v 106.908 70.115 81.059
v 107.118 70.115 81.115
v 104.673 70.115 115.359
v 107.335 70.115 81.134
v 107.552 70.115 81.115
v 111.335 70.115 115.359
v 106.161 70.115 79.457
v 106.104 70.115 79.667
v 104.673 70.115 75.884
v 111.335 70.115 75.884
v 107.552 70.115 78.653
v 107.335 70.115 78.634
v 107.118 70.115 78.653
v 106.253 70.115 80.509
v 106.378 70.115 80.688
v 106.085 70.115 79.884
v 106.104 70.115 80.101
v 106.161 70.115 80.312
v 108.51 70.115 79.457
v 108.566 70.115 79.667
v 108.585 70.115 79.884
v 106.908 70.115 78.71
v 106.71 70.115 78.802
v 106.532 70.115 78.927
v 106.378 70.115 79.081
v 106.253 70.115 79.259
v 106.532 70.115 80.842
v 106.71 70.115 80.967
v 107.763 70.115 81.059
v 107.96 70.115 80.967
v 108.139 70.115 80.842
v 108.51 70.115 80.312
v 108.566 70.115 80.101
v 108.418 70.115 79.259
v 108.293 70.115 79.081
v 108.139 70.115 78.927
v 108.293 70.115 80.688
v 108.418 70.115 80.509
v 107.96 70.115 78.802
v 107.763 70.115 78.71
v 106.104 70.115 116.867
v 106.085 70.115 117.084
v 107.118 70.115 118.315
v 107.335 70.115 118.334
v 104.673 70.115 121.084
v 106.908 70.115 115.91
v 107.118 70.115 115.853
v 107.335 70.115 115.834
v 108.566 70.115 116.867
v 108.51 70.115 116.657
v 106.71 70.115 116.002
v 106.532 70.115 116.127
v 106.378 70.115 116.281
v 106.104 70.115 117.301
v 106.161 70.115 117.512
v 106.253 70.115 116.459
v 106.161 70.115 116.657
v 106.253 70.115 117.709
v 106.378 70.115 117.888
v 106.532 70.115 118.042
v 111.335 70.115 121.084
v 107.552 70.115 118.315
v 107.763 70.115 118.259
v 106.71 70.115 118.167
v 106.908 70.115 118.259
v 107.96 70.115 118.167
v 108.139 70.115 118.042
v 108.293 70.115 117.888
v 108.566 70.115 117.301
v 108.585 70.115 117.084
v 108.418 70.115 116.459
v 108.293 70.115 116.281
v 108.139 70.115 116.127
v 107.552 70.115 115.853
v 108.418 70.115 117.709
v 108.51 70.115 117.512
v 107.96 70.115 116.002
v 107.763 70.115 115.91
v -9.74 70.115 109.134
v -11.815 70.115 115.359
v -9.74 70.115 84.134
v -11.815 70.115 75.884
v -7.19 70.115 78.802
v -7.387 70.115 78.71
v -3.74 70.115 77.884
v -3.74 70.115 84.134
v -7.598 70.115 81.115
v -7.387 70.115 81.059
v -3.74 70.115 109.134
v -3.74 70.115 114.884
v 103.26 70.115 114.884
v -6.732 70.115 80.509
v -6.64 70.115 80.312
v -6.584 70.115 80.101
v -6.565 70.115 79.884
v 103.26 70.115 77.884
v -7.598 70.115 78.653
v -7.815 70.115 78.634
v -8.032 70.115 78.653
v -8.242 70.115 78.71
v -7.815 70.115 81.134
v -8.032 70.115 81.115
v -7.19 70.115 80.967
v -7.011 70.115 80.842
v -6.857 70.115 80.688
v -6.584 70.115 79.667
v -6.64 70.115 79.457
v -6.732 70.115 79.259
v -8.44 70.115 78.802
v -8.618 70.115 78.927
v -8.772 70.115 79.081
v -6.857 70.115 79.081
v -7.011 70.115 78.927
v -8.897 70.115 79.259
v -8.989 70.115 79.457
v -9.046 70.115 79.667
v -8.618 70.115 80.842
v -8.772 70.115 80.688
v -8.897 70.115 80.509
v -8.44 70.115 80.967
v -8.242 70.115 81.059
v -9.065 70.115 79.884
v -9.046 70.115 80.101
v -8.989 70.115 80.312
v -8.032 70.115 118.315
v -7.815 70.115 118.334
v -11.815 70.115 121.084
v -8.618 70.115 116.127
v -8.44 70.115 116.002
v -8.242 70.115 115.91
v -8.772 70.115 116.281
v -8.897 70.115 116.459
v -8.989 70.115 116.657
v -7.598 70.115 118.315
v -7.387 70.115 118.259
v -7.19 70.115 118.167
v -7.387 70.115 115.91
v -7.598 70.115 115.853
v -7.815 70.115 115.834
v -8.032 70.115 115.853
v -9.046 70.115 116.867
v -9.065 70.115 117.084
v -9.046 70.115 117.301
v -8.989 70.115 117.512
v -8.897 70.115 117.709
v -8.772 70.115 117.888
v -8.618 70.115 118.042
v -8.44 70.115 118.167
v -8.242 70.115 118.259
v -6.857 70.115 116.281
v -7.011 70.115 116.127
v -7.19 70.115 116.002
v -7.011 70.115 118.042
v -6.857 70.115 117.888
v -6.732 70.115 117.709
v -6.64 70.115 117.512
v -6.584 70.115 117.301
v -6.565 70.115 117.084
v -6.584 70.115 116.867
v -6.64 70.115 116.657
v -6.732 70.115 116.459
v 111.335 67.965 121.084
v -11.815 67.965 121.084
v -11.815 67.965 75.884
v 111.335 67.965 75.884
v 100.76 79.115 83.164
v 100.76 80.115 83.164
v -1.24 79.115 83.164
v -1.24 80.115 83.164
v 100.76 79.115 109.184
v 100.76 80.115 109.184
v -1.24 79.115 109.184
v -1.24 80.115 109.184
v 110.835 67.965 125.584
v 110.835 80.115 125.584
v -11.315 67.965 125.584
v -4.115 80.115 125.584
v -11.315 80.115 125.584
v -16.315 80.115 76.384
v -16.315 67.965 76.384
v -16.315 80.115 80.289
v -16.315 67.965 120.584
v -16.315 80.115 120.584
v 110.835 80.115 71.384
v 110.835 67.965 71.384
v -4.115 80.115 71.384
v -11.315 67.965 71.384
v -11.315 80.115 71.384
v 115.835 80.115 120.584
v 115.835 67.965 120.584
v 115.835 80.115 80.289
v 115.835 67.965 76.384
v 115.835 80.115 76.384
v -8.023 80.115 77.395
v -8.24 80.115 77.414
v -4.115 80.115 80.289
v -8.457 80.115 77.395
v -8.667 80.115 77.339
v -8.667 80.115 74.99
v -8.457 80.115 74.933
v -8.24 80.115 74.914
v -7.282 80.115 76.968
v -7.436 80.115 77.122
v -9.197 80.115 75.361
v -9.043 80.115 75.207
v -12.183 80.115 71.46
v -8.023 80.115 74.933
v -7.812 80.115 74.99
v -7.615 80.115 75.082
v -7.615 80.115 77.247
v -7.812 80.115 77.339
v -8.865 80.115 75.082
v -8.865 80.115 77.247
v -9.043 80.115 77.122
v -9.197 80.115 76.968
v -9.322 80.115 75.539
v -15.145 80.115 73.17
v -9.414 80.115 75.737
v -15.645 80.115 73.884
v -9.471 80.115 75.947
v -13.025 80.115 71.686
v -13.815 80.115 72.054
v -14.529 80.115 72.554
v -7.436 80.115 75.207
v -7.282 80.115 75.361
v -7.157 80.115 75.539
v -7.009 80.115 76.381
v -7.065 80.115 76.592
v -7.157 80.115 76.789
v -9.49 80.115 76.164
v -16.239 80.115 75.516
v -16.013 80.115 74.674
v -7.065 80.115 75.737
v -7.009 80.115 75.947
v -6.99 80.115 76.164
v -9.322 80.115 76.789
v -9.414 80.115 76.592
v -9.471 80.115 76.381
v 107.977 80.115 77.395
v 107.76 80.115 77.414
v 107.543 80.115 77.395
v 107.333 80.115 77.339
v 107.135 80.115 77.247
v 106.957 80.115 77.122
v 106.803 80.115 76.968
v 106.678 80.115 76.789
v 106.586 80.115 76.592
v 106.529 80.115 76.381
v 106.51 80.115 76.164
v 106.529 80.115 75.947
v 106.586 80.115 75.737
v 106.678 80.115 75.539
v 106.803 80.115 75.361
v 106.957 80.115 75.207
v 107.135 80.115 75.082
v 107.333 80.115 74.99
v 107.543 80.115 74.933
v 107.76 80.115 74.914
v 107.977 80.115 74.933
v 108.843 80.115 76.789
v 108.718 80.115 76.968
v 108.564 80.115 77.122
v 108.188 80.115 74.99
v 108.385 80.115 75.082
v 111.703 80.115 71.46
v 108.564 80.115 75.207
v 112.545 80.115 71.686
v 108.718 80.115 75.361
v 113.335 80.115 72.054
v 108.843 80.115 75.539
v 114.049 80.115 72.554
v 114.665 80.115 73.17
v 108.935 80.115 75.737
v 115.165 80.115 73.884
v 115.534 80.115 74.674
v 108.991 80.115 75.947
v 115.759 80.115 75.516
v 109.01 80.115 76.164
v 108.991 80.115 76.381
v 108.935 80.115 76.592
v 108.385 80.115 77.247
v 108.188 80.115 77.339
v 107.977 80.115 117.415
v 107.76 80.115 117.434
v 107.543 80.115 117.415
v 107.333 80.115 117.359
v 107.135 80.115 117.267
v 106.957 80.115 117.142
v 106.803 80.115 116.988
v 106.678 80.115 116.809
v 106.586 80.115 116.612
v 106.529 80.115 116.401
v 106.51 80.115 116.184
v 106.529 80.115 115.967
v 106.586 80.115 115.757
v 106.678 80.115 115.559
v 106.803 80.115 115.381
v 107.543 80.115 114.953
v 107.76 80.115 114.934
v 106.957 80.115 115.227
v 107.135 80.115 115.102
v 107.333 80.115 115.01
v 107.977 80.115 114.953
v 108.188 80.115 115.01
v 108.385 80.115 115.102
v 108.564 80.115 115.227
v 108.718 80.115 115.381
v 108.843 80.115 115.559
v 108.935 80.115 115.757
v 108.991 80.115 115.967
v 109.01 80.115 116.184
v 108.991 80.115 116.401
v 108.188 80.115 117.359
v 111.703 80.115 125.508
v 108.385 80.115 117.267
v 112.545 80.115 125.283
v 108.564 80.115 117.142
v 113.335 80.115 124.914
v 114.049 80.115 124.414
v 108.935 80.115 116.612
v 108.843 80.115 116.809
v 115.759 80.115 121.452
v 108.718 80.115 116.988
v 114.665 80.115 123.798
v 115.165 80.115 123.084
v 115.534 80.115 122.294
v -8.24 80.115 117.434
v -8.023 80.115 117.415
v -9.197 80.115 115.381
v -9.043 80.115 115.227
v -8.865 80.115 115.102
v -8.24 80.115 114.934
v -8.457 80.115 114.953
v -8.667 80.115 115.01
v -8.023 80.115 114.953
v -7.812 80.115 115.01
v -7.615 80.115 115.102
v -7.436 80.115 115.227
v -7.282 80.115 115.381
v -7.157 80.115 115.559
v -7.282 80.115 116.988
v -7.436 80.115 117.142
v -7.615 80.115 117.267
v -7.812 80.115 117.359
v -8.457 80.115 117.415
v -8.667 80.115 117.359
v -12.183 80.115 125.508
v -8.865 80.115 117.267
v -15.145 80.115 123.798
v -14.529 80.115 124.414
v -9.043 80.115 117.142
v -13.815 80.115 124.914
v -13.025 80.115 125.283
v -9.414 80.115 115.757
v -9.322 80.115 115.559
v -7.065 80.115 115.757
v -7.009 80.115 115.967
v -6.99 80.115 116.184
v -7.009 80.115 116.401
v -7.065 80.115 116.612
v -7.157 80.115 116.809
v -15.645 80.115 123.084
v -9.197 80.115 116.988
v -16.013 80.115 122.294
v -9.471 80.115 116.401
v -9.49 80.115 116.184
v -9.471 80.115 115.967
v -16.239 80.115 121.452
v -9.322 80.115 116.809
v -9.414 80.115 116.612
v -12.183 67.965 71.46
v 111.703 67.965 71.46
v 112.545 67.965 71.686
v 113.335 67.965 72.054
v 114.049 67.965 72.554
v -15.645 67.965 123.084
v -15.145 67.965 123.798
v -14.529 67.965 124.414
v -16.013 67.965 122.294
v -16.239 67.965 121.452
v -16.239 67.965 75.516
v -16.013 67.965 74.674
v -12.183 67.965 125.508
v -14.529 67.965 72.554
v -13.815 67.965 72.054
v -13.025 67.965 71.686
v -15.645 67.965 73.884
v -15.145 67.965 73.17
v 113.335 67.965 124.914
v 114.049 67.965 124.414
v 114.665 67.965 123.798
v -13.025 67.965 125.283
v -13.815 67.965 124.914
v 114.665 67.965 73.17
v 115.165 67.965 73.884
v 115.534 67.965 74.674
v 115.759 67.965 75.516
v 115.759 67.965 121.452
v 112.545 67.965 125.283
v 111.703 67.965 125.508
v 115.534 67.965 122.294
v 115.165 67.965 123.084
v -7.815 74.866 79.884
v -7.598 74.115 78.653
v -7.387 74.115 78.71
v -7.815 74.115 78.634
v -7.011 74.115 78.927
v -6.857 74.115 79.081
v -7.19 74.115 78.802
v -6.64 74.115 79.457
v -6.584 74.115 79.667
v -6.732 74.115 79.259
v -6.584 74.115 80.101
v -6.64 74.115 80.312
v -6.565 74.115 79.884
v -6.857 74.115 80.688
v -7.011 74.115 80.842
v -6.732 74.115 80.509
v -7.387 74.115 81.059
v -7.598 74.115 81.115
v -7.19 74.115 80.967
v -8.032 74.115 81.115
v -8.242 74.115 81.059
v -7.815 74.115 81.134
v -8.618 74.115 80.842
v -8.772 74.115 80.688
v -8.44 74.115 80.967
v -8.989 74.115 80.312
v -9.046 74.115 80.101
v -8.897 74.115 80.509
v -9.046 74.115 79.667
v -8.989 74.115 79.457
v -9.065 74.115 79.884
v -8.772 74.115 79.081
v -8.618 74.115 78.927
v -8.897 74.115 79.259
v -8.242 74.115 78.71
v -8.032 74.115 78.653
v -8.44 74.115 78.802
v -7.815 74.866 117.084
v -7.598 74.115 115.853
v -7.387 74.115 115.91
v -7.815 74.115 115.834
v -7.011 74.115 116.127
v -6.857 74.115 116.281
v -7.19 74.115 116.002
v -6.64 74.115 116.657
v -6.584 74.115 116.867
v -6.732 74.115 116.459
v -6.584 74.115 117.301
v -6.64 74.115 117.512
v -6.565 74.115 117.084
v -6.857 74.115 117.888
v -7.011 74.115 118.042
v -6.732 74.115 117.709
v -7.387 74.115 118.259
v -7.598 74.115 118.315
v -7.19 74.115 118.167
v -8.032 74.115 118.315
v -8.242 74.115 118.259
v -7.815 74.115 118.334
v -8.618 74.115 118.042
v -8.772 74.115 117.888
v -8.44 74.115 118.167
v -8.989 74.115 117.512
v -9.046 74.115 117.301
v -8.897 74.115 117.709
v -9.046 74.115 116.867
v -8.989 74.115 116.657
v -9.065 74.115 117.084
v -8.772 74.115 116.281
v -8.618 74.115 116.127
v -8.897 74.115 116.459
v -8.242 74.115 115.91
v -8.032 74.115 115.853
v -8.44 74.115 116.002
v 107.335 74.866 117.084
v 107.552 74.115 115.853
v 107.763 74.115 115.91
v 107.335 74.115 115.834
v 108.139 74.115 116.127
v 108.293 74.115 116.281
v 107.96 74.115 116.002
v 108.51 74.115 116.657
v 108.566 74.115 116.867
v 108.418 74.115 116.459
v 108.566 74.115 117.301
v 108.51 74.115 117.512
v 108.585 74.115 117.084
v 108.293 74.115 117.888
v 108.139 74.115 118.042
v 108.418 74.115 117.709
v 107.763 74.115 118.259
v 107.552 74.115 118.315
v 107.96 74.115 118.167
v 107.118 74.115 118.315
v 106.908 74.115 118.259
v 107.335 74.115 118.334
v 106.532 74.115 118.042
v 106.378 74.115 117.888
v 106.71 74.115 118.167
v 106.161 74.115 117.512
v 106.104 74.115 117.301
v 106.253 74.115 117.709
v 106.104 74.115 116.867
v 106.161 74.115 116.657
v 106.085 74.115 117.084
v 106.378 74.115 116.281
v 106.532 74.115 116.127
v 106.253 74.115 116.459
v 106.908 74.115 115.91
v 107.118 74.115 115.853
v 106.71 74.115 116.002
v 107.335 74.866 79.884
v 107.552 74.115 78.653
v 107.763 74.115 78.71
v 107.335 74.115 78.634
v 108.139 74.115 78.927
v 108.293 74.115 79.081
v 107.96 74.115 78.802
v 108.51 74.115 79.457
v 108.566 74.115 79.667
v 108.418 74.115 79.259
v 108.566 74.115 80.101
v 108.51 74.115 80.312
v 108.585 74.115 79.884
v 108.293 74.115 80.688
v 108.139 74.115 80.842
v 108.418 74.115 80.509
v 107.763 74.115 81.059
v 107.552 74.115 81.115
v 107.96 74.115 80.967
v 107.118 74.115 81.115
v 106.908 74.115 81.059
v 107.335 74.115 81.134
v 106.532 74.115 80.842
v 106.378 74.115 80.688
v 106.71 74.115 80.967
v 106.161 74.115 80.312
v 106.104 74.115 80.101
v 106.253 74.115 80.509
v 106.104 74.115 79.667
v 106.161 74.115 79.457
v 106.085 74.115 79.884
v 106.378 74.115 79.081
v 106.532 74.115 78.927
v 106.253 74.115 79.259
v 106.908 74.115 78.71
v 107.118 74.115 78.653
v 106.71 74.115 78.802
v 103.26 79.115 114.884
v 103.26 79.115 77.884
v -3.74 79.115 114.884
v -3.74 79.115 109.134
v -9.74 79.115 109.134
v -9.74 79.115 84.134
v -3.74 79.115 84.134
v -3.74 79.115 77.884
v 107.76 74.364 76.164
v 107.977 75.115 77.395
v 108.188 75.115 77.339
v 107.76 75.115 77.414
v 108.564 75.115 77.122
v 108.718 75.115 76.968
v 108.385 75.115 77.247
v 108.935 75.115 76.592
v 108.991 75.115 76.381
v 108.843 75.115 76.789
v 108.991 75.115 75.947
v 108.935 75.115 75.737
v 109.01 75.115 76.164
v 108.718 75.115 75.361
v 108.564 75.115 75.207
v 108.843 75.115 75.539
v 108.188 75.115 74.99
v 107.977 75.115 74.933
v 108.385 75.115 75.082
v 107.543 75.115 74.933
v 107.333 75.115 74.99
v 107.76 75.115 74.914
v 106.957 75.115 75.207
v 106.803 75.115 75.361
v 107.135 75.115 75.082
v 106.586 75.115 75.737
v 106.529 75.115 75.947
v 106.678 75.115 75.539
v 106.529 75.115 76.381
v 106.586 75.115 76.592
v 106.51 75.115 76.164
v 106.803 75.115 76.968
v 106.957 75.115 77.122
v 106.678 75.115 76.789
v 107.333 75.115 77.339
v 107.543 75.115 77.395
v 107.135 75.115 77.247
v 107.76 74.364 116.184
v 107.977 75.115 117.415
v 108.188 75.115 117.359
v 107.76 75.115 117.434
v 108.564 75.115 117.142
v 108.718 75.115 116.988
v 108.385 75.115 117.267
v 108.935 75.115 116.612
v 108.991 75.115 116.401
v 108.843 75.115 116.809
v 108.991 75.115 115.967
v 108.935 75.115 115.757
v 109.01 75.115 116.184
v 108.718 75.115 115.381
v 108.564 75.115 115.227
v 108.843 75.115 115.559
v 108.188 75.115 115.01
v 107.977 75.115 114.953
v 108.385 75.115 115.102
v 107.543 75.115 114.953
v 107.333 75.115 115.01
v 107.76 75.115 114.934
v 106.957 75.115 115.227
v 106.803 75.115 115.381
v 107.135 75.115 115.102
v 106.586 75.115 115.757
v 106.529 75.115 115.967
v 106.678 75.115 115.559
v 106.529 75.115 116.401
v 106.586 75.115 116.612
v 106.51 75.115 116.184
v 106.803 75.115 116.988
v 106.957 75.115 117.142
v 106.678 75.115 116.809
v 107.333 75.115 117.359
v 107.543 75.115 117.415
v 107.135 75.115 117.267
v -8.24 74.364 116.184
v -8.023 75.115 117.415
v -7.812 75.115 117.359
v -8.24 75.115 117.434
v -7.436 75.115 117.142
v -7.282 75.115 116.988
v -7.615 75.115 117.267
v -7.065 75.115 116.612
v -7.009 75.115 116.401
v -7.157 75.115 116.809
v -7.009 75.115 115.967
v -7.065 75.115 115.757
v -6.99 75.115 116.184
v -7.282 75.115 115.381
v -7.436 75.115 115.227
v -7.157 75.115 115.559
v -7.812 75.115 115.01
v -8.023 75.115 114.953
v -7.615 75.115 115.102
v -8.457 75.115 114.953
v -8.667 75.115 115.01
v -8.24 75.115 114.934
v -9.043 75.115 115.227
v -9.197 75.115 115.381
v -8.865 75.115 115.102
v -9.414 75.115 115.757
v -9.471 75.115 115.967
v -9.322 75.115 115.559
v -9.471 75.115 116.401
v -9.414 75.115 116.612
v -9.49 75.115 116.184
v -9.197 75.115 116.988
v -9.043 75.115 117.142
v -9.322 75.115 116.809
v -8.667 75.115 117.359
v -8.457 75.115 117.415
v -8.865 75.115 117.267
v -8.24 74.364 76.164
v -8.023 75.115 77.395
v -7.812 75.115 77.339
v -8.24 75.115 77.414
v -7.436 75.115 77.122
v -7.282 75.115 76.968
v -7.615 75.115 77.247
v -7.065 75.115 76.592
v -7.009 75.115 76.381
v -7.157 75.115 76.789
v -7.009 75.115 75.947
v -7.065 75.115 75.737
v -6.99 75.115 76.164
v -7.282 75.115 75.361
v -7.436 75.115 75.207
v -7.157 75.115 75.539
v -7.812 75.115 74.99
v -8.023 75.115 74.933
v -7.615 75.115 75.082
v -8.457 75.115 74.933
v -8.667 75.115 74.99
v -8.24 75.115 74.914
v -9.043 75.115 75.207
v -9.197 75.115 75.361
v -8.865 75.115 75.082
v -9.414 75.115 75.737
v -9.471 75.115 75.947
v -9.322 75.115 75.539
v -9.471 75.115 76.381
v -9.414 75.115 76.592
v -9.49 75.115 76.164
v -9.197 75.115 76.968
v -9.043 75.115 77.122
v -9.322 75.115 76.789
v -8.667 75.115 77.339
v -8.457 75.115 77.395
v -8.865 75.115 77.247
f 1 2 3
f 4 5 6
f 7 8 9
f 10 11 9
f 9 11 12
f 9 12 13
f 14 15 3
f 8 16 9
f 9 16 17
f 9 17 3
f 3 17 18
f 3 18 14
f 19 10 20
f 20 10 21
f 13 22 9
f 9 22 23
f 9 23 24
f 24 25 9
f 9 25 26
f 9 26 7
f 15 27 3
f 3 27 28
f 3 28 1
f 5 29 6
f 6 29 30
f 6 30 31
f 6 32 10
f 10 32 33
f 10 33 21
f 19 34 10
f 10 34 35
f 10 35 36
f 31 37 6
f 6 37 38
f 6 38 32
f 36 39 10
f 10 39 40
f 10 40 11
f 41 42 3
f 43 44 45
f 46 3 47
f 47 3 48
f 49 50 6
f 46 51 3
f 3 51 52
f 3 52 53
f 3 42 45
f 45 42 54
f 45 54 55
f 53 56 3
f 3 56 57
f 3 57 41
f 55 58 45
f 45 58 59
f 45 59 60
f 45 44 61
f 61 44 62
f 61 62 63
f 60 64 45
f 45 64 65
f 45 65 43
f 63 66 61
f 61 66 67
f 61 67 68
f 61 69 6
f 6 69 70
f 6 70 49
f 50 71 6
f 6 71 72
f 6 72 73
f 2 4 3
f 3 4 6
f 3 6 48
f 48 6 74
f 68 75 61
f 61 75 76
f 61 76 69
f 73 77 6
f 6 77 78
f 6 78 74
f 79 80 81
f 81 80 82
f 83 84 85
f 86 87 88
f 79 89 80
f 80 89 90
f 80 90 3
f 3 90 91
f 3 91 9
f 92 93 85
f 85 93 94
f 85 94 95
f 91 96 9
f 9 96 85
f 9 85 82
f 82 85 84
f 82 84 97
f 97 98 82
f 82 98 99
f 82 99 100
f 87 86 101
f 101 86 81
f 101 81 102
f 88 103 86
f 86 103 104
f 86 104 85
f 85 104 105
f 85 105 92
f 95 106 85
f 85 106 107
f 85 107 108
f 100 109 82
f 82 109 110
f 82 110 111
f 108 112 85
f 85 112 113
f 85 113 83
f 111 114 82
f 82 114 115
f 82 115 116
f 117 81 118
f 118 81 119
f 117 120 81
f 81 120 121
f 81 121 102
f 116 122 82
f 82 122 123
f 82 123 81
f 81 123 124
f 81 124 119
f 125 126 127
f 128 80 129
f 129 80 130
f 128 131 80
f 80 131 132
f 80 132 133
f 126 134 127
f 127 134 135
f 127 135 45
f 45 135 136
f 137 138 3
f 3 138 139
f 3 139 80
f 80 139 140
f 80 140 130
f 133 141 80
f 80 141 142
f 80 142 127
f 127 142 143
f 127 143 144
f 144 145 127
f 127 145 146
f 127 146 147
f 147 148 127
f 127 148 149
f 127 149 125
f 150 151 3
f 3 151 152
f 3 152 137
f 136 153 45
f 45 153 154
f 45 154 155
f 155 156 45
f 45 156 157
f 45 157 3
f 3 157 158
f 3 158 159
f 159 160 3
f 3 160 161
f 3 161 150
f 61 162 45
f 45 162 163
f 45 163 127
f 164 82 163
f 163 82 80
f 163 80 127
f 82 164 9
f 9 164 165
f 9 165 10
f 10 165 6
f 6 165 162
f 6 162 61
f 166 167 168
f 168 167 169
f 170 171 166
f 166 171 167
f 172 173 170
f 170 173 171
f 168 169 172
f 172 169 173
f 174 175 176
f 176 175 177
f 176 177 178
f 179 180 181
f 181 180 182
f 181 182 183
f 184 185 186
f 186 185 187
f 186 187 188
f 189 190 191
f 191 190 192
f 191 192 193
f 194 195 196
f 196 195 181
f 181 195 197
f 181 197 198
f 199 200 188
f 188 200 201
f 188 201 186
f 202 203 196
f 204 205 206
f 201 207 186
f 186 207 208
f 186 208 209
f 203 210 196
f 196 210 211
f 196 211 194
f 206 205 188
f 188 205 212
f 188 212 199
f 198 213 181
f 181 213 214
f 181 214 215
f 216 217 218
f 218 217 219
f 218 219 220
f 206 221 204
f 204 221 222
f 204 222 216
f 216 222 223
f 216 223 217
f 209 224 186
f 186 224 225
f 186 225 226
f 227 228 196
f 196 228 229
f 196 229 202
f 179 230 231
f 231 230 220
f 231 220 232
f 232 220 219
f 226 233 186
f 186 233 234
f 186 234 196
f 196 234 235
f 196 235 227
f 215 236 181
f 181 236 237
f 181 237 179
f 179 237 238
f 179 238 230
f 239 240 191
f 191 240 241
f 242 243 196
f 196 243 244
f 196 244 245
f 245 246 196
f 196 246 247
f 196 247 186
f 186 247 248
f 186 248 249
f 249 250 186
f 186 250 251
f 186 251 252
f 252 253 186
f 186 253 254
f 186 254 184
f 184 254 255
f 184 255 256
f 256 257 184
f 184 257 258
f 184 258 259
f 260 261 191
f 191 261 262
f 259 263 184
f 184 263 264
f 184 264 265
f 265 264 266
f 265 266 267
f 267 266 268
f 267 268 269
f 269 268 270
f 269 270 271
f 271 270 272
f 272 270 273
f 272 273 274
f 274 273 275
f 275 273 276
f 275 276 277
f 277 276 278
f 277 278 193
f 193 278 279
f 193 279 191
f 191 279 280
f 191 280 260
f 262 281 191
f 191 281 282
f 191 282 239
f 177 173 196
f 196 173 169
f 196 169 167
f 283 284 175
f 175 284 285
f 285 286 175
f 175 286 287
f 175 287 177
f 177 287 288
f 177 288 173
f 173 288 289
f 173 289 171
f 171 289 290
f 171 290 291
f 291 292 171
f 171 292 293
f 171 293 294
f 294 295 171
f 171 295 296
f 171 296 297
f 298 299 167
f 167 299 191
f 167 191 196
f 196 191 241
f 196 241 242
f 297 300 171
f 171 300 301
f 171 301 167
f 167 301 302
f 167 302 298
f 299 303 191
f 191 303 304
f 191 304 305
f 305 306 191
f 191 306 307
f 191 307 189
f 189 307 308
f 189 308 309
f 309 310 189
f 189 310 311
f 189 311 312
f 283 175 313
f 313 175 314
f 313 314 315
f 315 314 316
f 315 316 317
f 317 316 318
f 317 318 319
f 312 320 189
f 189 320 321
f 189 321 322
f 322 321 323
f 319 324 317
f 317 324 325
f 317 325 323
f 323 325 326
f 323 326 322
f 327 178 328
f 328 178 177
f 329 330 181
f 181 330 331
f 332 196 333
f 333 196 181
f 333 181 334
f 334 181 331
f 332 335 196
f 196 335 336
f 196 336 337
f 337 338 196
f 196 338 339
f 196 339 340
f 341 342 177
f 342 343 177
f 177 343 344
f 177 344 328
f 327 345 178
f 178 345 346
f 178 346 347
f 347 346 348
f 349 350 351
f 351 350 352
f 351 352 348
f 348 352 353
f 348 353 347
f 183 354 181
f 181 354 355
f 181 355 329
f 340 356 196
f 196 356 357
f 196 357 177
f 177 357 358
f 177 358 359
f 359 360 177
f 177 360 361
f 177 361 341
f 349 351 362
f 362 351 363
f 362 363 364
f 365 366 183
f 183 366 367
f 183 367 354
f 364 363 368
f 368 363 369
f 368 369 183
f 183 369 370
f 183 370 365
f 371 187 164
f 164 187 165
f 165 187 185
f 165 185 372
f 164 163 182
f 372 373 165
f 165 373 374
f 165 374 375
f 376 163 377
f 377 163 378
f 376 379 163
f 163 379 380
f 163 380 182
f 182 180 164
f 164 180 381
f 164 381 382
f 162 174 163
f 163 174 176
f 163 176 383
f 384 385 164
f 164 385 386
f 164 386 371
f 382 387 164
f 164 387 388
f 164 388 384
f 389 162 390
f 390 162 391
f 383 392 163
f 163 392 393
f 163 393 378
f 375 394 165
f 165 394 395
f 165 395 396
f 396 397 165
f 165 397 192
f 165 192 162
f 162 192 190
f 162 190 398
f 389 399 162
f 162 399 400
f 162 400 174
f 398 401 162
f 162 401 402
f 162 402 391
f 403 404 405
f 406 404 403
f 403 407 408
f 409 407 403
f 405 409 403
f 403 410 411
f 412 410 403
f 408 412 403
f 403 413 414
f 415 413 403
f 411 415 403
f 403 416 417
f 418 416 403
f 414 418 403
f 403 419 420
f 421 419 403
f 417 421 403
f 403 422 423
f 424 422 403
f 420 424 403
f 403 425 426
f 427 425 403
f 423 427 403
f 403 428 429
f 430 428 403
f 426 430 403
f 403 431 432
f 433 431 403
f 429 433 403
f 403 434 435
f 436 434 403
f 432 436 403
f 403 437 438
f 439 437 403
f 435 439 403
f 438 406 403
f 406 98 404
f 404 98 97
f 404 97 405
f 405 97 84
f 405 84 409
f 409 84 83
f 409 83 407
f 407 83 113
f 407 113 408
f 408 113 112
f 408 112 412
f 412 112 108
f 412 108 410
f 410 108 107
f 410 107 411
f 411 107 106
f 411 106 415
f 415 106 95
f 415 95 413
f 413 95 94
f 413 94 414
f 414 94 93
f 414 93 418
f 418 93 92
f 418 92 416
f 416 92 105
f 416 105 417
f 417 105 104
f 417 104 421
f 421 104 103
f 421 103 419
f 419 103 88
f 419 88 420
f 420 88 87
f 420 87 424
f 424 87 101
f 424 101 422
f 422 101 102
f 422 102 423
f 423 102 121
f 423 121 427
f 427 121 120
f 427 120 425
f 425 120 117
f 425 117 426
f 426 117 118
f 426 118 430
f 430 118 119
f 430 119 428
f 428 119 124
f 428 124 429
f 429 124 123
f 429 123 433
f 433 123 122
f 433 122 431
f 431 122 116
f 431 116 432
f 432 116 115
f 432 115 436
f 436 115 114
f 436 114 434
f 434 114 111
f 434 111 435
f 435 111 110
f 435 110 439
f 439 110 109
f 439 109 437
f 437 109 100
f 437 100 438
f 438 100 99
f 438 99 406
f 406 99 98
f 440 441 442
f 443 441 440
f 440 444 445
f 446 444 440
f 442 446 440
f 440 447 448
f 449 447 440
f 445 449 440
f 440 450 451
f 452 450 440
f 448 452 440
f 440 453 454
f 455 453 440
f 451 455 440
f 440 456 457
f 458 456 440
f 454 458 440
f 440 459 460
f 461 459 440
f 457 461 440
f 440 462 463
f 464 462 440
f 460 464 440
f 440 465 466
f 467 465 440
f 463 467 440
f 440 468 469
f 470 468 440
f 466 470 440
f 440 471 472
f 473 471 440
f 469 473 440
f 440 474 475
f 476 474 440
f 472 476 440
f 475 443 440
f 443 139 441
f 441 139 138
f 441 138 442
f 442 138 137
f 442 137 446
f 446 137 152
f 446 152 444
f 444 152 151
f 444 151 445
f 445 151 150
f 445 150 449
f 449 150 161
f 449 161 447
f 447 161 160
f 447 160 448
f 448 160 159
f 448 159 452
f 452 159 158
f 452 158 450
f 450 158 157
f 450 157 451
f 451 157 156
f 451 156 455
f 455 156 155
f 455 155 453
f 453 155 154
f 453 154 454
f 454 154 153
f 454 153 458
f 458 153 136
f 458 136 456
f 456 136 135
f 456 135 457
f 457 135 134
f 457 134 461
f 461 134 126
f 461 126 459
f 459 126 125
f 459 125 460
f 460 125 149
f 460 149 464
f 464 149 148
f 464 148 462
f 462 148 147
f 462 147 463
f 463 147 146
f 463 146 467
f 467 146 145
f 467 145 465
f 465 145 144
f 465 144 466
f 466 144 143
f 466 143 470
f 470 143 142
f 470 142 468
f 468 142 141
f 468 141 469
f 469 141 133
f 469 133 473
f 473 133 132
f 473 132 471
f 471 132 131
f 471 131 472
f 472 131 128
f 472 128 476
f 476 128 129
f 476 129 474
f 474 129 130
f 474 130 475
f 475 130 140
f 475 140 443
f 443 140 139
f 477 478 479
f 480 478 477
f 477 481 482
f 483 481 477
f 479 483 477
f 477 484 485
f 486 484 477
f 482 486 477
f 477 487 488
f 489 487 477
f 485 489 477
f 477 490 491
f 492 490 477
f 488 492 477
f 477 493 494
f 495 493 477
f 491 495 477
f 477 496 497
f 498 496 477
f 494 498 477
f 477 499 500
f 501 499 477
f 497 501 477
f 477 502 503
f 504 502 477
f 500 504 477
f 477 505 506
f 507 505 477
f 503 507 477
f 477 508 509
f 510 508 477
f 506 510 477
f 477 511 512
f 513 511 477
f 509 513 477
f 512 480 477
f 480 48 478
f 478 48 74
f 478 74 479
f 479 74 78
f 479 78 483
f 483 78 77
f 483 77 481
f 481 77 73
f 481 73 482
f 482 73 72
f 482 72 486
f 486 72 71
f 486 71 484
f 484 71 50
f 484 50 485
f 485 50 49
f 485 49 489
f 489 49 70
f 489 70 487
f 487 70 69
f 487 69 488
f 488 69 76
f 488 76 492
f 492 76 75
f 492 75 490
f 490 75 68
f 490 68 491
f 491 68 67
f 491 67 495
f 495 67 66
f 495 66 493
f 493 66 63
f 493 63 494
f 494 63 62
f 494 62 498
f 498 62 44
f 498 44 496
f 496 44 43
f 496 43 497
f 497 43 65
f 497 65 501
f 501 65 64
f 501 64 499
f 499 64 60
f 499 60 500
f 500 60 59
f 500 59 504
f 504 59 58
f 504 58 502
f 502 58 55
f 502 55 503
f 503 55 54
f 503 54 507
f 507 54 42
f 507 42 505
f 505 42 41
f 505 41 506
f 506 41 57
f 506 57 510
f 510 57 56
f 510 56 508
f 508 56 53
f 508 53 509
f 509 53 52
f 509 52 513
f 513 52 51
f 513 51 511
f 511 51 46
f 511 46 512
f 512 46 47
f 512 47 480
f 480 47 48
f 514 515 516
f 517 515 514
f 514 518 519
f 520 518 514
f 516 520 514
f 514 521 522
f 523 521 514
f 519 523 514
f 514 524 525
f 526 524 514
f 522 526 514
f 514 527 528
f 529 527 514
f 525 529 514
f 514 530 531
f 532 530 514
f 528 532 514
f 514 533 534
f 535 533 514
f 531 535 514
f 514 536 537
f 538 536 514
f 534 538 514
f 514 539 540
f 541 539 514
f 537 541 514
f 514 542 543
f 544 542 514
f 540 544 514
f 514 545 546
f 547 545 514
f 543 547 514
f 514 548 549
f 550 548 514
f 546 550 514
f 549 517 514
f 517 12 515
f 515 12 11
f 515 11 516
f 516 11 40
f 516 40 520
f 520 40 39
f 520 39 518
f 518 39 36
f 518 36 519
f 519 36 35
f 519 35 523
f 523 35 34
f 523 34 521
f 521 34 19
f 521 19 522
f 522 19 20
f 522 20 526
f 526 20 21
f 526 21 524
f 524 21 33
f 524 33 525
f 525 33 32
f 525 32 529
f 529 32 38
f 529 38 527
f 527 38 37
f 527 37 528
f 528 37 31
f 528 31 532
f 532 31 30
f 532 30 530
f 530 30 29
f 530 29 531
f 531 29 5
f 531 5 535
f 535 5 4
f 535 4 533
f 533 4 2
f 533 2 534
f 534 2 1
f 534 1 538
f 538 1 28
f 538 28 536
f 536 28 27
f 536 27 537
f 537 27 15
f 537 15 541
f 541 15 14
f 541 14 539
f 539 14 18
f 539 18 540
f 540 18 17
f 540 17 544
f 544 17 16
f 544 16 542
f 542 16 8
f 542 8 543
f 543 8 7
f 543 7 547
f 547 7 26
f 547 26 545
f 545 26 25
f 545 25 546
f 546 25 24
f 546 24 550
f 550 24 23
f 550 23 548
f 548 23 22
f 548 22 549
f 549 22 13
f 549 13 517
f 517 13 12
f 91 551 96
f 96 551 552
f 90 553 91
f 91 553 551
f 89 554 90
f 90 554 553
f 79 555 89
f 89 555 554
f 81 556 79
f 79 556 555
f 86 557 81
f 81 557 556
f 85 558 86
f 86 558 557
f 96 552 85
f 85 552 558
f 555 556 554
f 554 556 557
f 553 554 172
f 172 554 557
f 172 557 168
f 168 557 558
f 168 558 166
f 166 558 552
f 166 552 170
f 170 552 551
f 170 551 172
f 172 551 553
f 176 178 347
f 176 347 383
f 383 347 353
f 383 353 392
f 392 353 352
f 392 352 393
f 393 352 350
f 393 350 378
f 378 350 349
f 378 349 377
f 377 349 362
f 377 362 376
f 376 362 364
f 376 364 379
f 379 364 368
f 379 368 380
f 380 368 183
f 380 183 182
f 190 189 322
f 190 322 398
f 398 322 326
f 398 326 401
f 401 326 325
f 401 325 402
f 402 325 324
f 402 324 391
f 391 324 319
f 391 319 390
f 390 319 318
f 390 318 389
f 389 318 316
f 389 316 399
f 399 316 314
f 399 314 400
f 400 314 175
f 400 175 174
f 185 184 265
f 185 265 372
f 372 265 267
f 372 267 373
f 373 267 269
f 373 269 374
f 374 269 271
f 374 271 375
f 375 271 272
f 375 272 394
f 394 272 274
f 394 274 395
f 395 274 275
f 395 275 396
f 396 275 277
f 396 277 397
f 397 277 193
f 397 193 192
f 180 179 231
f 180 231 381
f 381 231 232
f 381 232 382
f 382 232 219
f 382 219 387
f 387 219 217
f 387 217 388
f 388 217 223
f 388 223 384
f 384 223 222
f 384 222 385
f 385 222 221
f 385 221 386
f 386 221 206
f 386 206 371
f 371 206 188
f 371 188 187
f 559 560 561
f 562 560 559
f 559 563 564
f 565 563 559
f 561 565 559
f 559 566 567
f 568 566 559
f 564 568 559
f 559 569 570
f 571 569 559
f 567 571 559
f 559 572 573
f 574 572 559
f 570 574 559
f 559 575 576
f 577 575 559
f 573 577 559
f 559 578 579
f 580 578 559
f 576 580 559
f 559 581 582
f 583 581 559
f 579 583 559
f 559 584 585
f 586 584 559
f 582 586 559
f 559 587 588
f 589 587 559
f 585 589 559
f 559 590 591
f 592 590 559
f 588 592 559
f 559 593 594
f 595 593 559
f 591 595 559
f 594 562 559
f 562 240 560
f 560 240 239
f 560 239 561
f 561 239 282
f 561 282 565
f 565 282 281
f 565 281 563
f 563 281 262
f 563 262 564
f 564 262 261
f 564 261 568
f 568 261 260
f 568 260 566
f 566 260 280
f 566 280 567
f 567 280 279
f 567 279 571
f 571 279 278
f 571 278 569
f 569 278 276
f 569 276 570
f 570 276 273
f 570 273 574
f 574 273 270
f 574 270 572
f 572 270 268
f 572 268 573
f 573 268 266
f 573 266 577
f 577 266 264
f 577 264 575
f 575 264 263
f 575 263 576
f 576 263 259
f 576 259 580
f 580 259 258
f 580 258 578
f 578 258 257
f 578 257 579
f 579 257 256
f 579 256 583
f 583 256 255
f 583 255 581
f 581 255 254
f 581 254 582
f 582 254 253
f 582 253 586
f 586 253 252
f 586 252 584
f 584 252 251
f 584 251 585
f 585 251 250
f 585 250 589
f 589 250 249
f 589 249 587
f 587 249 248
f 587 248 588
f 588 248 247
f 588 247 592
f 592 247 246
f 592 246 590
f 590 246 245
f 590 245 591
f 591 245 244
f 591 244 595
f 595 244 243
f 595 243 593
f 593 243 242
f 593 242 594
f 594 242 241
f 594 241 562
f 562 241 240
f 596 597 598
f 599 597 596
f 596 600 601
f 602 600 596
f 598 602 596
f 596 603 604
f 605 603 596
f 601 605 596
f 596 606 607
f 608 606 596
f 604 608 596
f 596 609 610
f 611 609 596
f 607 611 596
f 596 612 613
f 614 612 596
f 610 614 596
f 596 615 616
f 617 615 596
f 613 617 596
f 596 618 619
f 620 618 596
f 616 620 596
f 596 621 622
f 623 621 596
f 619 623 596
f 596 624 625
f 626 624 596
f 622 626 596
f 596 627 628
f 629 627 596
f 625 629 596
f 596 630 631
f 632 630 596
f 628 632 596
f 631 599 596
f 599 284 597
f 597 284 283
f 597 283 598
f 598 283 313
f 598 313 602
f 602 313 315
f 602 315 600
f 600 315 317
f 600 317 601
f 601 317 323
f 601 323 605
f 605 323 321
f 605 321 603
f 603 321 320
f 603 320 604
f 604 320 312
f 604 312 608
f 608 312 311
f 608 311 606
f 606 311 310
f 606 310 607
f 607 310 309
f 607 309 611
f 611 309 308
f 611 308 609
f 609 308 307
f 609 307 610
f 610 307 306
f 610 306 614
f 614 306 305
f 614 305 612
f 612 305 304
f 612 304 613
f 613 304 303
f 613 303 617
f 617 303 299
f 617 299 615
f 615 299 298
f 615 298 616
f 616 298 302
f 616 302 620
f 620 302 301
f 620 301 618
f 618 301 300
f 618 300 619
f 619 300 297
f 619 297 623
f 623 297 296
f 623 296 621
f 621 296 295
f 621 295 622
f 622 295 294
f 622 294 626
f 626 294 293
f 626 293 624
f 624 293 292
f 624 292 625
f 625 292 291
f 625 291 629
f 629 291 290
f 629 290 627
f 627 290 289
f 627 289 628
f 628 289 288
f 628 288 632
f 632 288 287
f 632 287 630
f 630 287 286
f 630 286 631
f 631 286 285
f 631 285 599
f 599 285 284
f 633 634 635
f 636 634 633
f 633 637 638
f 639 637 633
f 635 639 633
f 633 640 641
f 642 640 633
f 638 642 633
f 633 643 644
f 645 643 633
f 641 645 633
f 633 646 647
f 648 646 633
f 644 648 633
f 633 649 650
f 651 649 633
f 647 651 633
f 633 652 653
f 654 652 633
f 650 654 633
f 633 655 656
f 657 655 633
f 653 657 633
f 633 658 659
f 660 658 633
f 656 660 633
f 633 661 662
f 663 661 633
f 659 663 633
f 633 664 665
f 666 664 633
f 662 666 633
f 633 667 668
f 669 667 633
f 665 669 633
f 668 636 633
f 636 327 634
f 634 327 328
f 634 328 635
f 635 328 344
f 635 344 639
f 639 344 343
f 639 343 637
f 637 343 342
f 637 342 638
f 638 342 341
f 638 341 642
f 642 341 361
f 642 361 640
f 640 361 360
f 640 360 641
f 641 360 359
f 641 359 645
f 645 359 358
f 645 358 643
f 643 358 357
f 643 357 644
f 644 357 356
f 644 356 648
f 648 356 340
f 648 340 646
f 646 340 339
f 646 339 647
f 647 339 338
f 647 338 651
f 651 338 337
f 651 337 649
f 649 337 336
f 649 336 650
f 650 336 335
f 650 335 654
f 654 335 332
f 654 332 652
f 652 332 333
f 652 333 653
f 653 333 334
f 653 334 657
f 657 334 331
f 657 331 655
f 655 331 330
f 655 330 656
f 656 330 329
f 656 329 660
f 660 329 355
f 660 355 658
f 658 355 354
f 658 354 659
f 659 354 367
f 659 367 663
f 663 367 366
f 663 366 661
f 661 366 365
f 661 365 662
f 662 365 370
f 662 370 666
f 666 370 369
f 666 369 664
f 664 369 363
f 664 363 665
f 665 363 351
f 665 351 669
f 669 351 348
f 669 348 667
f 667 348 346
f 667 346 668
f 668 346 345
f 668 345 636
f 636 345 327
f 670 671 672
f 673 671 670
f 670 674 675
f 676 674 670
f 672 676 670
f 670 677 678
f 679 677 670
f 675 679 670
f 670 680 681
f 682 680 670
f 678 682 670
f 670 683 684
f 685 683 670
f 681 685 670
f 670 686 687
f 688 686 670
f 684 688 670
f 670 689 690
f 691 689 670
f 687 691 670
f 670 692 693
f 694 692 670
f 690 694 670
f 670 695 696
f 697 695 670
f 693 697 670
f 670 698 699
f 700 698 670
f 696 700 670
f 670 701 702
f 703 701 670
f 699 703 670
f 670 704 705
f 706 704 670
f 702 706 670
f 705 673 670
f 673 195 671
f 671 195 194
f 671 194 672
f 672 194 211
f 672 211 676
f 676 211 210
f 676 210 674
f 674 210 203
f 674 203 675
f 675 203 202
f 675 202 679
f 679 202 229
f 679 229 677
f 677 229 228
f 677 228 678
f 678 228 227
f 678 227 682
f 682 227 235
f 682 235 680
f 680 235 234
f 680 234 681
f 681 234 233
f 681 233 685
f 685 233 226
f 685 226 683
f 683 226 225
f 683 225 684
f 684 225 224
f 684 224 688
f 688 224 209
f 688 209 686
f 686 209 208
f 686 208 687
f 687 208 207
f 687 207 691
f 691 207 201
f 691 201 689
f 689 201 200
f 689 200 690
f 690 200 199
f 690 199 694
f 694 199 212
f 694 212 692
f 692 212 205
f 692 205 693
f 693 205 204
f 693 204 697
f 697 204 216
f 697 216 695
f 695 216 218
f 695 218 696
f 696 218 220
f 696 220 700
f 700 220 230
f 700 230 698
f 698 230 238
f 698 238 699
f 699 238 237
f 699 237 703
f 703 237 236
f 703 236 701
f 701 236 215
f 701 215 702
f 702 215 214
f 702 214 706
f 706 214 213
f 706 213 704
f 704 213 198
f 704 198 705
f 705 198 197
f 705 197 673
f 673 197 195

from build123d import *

# Parameters (mm, degrees)
SKETCH1_W                       = 132.15
SKETCH1_H                       = 54.2
SKETCH1_W_2                     = 102
SKETCH1_H_2                     = 26.02
BOSS_EXTRUDE6_DEPTH             = 12.15
CUT_EXTRUDE9_REACH              = 13.15
SKETCH3_W                       = 105
SKETCH3_H                       = 29.02
SKETCH4_W                       = 123.15
SKETCH4_H                       = 45.2
CUT_EXTRUDE10_DEPTH             = 2.15
TAP_DRILL_FOR_M3X0_5_TAP1_D     = 2.5
TAP_DRILL_FOR_M3X0_5_TAP1_DEPTH = 4
TAP_DRILL_FOR_M3X0_5_TAP1_TIP   = 0.751075774
CUT_EXTRUDE11_DEPTH             = 9
FILLET1_R                       = 5
TAP_DRILL_FOR_M3X0_5_TAP2_D     = 2.5
TAP_DRILL_FOR_M3X0_5_TAP2_DEPTH = 5
TAP_DRILL_FOR_M3X0_5_TAP2_TIP   = 0.751075774


with BuildPart() as part:
    # Sketch1 → Boss-Extrude6 (new body)
    with BuildSketch(Plane(origin=(0, 80.115132846, 0), x_dir=(1, 0, 0), z_dir=(0, 1, 0))):
        with Locations((49.760246528, -98.484153608)):
            Rectangle(SKETCH1_W, SKETCH1_H)
        with Locations((49.760246528, -96.174153608)):
            Rectangle(SKETCH1_W_2, SKETCH1_H_2, mode=Mode.SUBTRACT)
    extrude(amount=-BOSS_EXTRUDE6_DEPTH)

    # Sketch3 → Cut-Extrude9 (cut, up to next)
    with BuildSketch(Plane(origin=(0, 79.115132846, 0), x_dir=(1, 0, 0), z_dir=(0, 1, 0)), mode=Mode.PRIVATE) as cut_extrude9_sk1:
        with Locations((49.760246528, -96.174153608)):
            Rectangle(SKETCH3_W, SKETCH3_H)
    cut_extrude9_tool1 = extrude(cut_extrude9_sk1.sketch, amount=-CUT_EXTRUDE9_REACH, mode=Mode.PRIVATE) & part.part
    add(cut_extrude9_tool1.solids().sort_by_distance((49.760247, 79.115133, 96.174154))[0], mode=Mode.SUBTRACT)

    # Sketch4 → Cut-Extrude10 (cut)
    with BuildSketch(Plane.XZ.offset(-67.965132846)):
        with Locations((49.760246528, 98.484153608)):
            Rectangle(SKETCH4_W, SKETCH4_H)
    extrude(amount=-CUT_EXTRUDE10_DEPTH, mode=Mode.SUBTRACT)

    # Tap Drill for M3x0.5 Tap1
    with Locations(Plane(origin=(0, 70.115132846, 0), x_dir=(-1, 0, 0), z_dir=(0, -1, 0))):
        with Locations((-107.335246528, -79.884153608), (-107.335246528, -117.084153608), (7.814753472, -117.084153608), (7.814753472, -79.884153608)):
            Hole(TAP_DRILL_FOR_M3X0_5_TAP1_D / 2, depth=TAP_DRILL_FOR_M3X0_5_TAP1_DEPTH)
            with Locations((0, 0, -(TAP_DRILL_FOR_M3X0_5_TAP1_DEPTH + TAP_DRILL_FOR_M3X0_5_TAP1_TIP / 2))):  # 118° drill point
                Cone(0, TAP_DRILL_FOR_M3X0_5_TAP1_D / 2, TAP_DRILL_FOR_M3X0_5_TAP1_TIP, mode=Mode.SUBTRACT)

    # Sketch8 → Cut-Extrude11 (cut)
    with BuildSketch(Plane.XZ.offset(-70.115132846)):
        Polygon((103.260246528, 77.884153608), (103.260246528, 114.884153608), (-3.739753472, 114.884153608), (-3.739753472, 109.134153608), (-9.739753472, 109.134153608), (-9.739753472, 84.134153608), (-3.739753472, 84.134153608), (-3.739753472, 77.884153608), align=None)
    extrude(amount=-CUT_EXTRUDE11_DEPTH, mode=Mode.SUBTRACT)

    # Fillet1
    fillet1_edges = [part.edges().sort_by_distance(p)[0] for p in [
        (-16.314753472, 74.040132846, 71.384153608),
        (115.835246528, 74.040132846, 71.384153608),
        (115.835246528, 74.040132846, 125.584153608),
        (-16.314753472, 74.040132846, 125.584153608),
    ]]
    fillet(fillet1_edges, radius=FILLET1_R)

    # Tap Drill for M3x0.5 Tap2
    with Locations(Plane(origin=(0, 80.115132846, 0), x_dir=(1, 0, 0), z_dir=(0, 1, 0))):
        with Locations((-8.239753472, -76.164153608), (-8.239753472, -116.184153608), (107.760246528, -116.184153608), (107.760246528, -76.164153608)):
            Hole(TAP_DRILL_FOR_M3X0_5_TAP2_D / 2, depth=TAP_DRILL_FOR_M3X0_5_TAP2_DEPTH)
            with Locations((0, 0, -(TAP_DRILL_FOR_M3X0_5_TAP2_DEPTH + TAP_DRILL_FOR_M3X0_5_TAP2_TIP / 2))):  # 118° drill point
                Cone(0, TAP_DRILL_FOR_M3X0_5_TAP2_D / 2, TAP_DRILL_FOR_M3X0_5_TAP2_TIP, mode=Mode.SUBTRACT)


solid = part.part
